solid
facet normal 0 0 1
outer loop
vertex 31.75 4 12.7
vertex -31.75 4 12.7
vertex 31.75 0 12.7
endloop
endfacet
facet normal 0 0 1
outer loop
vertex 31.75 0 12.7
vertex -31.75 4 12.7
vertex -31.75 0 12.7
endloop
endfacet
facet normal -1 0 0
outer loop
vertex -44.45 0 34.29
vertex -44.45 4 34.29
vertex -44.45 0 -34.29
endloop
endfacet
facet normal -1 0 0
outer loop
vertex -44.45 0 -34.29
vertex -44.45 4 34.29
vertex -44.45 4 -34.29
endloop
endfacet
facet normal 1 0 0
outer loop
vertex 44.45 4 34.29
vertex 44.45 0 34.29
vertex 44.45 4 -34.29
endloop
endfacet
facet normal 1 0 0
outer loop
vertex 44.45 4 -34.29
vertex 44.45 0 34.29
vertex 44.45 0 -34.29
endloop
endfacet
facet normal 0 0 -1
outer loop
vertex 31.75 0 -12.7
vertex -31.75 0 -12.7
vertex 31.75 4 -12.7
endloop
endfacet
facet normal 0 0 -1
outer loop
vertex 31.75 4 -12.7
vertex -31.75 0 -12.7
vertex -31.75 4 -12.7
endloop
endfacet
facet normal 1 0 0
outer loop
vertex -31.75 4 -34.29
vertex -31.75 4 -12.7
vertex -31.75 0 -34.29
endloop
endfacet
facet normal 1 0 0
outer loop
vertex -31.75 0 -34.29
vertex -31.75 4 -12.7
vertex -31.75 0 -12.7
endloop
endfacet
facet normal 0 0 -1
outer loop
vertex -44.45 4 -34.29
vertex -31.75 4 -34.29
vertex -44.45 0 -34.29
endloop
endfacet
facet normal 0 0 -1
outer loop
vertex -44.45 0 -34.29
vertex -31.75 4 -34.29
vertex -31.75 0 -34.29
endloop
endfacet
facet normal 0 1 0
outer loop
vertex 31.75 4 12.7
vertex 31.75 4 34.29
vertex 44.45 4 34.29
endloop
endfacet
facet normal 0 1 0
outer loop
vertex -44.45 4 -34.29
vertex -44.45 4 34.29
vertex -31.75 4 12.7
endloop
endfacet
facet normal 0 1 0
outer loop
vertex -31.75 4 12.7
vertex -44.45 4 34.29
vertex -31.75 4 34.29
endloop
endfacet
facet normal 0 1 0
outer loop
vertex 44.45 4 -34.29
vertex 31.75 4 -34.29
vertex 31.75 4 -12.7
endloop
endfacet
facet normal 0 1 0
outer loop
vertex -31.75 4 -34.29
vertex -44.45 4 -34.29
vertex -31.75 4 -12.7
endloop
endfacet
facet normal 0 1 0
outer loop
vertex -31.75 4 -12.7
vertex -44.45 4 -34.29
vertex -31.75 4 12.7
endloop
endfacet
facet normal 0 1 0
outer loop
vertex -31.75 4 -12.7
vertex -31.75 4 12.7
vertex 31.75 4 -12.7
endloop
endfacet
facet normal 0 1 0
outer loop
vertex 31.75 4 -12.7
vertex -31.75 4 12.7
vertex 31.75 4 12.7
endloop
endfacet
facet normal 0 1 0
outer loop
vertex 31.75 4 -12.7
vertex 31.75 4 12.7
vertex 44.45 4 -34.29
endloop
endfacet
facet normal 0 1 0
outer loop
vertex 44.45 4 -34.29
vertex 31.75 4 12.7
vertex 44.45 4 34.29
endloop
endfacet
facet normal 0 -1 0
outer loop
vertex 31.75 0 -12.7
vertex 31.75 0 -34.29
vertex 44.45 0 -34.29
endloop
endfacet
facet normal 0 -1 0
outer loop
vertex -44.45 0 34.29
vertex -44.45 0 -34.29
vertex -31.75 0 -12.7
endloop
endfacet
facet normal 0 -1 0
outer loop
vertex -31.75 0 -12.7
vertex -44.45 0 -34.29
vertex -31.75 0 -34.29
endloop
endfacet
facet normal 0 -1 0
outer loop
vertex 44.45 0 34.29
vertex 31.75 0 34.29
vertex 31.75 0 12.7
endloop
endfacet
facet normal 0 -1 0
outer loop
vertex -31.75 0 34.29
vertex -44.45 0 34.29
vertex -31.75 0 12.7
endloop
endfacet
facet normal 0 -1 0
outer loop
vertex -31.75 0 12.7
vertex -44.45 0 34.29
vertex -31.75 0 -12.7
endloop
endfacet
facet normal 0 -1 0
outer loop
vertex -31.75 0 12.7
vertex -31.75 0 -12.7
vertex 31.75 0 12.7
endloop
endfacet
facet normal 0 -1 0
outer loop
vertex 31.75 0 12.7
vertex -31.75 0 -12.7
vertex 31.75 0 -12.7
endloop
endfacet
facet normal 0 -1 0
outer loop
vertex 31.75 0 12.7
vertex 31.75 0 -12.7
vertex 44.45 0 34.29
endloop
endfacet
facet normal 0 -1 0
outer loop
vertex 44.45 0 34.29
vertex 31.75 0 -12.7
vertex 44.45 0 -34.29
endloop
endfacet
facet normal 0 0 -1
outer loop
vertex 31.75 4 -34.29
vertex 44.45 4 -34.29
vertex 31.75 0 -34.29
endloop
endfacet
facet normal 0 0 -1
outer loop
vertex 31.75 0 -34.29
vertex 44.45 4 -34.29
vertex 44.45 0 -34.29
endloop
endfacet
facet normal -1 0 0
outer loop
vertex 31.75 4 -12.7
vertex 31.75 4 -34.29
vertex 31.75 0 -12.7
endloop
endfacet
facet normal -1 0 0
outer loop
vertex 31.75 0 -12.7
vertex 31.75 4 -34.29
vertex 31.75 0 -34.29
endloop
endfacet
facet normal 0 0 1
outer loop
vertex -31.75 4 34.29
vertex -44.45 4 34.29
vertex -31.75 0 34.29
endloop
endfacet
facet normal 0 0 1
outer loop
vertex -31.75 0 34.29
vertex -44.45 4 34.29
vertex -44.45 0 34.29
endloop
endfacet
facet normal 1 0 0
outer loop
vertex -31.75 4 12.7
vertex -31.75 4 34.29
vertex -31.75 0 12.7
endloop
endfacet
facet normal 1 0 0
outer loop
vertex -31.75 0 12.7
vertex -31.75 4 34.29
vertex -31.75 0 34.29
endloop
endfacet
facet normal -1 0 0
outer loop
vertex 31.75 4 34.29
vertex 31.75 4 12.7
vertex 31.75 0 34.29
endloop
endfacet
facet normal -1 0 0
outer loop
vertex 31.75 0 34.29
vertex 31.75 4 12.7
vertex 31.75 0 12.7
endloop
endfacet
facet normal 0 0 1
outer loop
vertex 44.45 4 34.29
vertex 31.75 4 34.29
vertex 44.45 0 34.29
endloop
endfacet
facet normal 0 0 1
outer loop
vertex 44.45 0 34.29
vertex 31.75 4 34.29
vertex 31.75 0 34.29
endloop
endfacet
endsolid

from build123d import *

# Parameters (mm, degrees)
SKETCH1_W               = 88.9
SKETCH1_H               = 25.4
BOSS_EXTRUDE1_DEPTH     = 4
MIRROR3_COPY_1_SKETCH_W = 88.9
MIRROR3_COPY_1_SKETCH_H = 25.4
MIRROR3_COPY_1_DEPTH    = 4


with BuildPart() as part:
    # Sketch1 → Boss-Extrude1 (new body)
    with BuildSketch(Plane(origin=(0, 0, 0), x_dir=(1, 0, 0), z_dir=(0, 1, 0))):
        Rectangle(SKETCH1_W, SKETCH1_H)
        Polygon((-44.45, 34.29), (-44.45, 12.7), (-31.75, 12.7), (-31.75, 34.29), (-38.1, 34.29), align=None)
    boss_extrude1 = extrude(amount=BOSS_EXTRUDE1_DEPTH)

    # Mirror1: Boss-Extrude1 across plane
    add(boss_extrude1.mirror(Plane.ZY))

    # Mirror2: Boss-Extrude1 across plane
    add(boss_extrude1.mirror(Plane.XY))

    # Mirror3: Boss-Extrude1 across plane
    add(boss_extrude1.mirror(Plane.ZY))

    # Mirror3 copy 1 sketch → Mirror3 copy 1 (add)
    with BuildSketch(Plane(origin=(0, 0, 0), x_dir=(-1, 0, 0), z_dir=(0, 1, 0))):
        Rectangle(MIRROR3_COPY_1_SKETCH_W, MIRROR3_COPY_1_SKETCH_H)
        Polygon((-44.45, 34.29), (-44.45, 12.7), (-31.75, 12.7), (-31.75, 34.29), (-38.1, 34.29), align=None)
    extrude(amount=MIRROR3_COPY_1_DEPTH)


solid = part.part
